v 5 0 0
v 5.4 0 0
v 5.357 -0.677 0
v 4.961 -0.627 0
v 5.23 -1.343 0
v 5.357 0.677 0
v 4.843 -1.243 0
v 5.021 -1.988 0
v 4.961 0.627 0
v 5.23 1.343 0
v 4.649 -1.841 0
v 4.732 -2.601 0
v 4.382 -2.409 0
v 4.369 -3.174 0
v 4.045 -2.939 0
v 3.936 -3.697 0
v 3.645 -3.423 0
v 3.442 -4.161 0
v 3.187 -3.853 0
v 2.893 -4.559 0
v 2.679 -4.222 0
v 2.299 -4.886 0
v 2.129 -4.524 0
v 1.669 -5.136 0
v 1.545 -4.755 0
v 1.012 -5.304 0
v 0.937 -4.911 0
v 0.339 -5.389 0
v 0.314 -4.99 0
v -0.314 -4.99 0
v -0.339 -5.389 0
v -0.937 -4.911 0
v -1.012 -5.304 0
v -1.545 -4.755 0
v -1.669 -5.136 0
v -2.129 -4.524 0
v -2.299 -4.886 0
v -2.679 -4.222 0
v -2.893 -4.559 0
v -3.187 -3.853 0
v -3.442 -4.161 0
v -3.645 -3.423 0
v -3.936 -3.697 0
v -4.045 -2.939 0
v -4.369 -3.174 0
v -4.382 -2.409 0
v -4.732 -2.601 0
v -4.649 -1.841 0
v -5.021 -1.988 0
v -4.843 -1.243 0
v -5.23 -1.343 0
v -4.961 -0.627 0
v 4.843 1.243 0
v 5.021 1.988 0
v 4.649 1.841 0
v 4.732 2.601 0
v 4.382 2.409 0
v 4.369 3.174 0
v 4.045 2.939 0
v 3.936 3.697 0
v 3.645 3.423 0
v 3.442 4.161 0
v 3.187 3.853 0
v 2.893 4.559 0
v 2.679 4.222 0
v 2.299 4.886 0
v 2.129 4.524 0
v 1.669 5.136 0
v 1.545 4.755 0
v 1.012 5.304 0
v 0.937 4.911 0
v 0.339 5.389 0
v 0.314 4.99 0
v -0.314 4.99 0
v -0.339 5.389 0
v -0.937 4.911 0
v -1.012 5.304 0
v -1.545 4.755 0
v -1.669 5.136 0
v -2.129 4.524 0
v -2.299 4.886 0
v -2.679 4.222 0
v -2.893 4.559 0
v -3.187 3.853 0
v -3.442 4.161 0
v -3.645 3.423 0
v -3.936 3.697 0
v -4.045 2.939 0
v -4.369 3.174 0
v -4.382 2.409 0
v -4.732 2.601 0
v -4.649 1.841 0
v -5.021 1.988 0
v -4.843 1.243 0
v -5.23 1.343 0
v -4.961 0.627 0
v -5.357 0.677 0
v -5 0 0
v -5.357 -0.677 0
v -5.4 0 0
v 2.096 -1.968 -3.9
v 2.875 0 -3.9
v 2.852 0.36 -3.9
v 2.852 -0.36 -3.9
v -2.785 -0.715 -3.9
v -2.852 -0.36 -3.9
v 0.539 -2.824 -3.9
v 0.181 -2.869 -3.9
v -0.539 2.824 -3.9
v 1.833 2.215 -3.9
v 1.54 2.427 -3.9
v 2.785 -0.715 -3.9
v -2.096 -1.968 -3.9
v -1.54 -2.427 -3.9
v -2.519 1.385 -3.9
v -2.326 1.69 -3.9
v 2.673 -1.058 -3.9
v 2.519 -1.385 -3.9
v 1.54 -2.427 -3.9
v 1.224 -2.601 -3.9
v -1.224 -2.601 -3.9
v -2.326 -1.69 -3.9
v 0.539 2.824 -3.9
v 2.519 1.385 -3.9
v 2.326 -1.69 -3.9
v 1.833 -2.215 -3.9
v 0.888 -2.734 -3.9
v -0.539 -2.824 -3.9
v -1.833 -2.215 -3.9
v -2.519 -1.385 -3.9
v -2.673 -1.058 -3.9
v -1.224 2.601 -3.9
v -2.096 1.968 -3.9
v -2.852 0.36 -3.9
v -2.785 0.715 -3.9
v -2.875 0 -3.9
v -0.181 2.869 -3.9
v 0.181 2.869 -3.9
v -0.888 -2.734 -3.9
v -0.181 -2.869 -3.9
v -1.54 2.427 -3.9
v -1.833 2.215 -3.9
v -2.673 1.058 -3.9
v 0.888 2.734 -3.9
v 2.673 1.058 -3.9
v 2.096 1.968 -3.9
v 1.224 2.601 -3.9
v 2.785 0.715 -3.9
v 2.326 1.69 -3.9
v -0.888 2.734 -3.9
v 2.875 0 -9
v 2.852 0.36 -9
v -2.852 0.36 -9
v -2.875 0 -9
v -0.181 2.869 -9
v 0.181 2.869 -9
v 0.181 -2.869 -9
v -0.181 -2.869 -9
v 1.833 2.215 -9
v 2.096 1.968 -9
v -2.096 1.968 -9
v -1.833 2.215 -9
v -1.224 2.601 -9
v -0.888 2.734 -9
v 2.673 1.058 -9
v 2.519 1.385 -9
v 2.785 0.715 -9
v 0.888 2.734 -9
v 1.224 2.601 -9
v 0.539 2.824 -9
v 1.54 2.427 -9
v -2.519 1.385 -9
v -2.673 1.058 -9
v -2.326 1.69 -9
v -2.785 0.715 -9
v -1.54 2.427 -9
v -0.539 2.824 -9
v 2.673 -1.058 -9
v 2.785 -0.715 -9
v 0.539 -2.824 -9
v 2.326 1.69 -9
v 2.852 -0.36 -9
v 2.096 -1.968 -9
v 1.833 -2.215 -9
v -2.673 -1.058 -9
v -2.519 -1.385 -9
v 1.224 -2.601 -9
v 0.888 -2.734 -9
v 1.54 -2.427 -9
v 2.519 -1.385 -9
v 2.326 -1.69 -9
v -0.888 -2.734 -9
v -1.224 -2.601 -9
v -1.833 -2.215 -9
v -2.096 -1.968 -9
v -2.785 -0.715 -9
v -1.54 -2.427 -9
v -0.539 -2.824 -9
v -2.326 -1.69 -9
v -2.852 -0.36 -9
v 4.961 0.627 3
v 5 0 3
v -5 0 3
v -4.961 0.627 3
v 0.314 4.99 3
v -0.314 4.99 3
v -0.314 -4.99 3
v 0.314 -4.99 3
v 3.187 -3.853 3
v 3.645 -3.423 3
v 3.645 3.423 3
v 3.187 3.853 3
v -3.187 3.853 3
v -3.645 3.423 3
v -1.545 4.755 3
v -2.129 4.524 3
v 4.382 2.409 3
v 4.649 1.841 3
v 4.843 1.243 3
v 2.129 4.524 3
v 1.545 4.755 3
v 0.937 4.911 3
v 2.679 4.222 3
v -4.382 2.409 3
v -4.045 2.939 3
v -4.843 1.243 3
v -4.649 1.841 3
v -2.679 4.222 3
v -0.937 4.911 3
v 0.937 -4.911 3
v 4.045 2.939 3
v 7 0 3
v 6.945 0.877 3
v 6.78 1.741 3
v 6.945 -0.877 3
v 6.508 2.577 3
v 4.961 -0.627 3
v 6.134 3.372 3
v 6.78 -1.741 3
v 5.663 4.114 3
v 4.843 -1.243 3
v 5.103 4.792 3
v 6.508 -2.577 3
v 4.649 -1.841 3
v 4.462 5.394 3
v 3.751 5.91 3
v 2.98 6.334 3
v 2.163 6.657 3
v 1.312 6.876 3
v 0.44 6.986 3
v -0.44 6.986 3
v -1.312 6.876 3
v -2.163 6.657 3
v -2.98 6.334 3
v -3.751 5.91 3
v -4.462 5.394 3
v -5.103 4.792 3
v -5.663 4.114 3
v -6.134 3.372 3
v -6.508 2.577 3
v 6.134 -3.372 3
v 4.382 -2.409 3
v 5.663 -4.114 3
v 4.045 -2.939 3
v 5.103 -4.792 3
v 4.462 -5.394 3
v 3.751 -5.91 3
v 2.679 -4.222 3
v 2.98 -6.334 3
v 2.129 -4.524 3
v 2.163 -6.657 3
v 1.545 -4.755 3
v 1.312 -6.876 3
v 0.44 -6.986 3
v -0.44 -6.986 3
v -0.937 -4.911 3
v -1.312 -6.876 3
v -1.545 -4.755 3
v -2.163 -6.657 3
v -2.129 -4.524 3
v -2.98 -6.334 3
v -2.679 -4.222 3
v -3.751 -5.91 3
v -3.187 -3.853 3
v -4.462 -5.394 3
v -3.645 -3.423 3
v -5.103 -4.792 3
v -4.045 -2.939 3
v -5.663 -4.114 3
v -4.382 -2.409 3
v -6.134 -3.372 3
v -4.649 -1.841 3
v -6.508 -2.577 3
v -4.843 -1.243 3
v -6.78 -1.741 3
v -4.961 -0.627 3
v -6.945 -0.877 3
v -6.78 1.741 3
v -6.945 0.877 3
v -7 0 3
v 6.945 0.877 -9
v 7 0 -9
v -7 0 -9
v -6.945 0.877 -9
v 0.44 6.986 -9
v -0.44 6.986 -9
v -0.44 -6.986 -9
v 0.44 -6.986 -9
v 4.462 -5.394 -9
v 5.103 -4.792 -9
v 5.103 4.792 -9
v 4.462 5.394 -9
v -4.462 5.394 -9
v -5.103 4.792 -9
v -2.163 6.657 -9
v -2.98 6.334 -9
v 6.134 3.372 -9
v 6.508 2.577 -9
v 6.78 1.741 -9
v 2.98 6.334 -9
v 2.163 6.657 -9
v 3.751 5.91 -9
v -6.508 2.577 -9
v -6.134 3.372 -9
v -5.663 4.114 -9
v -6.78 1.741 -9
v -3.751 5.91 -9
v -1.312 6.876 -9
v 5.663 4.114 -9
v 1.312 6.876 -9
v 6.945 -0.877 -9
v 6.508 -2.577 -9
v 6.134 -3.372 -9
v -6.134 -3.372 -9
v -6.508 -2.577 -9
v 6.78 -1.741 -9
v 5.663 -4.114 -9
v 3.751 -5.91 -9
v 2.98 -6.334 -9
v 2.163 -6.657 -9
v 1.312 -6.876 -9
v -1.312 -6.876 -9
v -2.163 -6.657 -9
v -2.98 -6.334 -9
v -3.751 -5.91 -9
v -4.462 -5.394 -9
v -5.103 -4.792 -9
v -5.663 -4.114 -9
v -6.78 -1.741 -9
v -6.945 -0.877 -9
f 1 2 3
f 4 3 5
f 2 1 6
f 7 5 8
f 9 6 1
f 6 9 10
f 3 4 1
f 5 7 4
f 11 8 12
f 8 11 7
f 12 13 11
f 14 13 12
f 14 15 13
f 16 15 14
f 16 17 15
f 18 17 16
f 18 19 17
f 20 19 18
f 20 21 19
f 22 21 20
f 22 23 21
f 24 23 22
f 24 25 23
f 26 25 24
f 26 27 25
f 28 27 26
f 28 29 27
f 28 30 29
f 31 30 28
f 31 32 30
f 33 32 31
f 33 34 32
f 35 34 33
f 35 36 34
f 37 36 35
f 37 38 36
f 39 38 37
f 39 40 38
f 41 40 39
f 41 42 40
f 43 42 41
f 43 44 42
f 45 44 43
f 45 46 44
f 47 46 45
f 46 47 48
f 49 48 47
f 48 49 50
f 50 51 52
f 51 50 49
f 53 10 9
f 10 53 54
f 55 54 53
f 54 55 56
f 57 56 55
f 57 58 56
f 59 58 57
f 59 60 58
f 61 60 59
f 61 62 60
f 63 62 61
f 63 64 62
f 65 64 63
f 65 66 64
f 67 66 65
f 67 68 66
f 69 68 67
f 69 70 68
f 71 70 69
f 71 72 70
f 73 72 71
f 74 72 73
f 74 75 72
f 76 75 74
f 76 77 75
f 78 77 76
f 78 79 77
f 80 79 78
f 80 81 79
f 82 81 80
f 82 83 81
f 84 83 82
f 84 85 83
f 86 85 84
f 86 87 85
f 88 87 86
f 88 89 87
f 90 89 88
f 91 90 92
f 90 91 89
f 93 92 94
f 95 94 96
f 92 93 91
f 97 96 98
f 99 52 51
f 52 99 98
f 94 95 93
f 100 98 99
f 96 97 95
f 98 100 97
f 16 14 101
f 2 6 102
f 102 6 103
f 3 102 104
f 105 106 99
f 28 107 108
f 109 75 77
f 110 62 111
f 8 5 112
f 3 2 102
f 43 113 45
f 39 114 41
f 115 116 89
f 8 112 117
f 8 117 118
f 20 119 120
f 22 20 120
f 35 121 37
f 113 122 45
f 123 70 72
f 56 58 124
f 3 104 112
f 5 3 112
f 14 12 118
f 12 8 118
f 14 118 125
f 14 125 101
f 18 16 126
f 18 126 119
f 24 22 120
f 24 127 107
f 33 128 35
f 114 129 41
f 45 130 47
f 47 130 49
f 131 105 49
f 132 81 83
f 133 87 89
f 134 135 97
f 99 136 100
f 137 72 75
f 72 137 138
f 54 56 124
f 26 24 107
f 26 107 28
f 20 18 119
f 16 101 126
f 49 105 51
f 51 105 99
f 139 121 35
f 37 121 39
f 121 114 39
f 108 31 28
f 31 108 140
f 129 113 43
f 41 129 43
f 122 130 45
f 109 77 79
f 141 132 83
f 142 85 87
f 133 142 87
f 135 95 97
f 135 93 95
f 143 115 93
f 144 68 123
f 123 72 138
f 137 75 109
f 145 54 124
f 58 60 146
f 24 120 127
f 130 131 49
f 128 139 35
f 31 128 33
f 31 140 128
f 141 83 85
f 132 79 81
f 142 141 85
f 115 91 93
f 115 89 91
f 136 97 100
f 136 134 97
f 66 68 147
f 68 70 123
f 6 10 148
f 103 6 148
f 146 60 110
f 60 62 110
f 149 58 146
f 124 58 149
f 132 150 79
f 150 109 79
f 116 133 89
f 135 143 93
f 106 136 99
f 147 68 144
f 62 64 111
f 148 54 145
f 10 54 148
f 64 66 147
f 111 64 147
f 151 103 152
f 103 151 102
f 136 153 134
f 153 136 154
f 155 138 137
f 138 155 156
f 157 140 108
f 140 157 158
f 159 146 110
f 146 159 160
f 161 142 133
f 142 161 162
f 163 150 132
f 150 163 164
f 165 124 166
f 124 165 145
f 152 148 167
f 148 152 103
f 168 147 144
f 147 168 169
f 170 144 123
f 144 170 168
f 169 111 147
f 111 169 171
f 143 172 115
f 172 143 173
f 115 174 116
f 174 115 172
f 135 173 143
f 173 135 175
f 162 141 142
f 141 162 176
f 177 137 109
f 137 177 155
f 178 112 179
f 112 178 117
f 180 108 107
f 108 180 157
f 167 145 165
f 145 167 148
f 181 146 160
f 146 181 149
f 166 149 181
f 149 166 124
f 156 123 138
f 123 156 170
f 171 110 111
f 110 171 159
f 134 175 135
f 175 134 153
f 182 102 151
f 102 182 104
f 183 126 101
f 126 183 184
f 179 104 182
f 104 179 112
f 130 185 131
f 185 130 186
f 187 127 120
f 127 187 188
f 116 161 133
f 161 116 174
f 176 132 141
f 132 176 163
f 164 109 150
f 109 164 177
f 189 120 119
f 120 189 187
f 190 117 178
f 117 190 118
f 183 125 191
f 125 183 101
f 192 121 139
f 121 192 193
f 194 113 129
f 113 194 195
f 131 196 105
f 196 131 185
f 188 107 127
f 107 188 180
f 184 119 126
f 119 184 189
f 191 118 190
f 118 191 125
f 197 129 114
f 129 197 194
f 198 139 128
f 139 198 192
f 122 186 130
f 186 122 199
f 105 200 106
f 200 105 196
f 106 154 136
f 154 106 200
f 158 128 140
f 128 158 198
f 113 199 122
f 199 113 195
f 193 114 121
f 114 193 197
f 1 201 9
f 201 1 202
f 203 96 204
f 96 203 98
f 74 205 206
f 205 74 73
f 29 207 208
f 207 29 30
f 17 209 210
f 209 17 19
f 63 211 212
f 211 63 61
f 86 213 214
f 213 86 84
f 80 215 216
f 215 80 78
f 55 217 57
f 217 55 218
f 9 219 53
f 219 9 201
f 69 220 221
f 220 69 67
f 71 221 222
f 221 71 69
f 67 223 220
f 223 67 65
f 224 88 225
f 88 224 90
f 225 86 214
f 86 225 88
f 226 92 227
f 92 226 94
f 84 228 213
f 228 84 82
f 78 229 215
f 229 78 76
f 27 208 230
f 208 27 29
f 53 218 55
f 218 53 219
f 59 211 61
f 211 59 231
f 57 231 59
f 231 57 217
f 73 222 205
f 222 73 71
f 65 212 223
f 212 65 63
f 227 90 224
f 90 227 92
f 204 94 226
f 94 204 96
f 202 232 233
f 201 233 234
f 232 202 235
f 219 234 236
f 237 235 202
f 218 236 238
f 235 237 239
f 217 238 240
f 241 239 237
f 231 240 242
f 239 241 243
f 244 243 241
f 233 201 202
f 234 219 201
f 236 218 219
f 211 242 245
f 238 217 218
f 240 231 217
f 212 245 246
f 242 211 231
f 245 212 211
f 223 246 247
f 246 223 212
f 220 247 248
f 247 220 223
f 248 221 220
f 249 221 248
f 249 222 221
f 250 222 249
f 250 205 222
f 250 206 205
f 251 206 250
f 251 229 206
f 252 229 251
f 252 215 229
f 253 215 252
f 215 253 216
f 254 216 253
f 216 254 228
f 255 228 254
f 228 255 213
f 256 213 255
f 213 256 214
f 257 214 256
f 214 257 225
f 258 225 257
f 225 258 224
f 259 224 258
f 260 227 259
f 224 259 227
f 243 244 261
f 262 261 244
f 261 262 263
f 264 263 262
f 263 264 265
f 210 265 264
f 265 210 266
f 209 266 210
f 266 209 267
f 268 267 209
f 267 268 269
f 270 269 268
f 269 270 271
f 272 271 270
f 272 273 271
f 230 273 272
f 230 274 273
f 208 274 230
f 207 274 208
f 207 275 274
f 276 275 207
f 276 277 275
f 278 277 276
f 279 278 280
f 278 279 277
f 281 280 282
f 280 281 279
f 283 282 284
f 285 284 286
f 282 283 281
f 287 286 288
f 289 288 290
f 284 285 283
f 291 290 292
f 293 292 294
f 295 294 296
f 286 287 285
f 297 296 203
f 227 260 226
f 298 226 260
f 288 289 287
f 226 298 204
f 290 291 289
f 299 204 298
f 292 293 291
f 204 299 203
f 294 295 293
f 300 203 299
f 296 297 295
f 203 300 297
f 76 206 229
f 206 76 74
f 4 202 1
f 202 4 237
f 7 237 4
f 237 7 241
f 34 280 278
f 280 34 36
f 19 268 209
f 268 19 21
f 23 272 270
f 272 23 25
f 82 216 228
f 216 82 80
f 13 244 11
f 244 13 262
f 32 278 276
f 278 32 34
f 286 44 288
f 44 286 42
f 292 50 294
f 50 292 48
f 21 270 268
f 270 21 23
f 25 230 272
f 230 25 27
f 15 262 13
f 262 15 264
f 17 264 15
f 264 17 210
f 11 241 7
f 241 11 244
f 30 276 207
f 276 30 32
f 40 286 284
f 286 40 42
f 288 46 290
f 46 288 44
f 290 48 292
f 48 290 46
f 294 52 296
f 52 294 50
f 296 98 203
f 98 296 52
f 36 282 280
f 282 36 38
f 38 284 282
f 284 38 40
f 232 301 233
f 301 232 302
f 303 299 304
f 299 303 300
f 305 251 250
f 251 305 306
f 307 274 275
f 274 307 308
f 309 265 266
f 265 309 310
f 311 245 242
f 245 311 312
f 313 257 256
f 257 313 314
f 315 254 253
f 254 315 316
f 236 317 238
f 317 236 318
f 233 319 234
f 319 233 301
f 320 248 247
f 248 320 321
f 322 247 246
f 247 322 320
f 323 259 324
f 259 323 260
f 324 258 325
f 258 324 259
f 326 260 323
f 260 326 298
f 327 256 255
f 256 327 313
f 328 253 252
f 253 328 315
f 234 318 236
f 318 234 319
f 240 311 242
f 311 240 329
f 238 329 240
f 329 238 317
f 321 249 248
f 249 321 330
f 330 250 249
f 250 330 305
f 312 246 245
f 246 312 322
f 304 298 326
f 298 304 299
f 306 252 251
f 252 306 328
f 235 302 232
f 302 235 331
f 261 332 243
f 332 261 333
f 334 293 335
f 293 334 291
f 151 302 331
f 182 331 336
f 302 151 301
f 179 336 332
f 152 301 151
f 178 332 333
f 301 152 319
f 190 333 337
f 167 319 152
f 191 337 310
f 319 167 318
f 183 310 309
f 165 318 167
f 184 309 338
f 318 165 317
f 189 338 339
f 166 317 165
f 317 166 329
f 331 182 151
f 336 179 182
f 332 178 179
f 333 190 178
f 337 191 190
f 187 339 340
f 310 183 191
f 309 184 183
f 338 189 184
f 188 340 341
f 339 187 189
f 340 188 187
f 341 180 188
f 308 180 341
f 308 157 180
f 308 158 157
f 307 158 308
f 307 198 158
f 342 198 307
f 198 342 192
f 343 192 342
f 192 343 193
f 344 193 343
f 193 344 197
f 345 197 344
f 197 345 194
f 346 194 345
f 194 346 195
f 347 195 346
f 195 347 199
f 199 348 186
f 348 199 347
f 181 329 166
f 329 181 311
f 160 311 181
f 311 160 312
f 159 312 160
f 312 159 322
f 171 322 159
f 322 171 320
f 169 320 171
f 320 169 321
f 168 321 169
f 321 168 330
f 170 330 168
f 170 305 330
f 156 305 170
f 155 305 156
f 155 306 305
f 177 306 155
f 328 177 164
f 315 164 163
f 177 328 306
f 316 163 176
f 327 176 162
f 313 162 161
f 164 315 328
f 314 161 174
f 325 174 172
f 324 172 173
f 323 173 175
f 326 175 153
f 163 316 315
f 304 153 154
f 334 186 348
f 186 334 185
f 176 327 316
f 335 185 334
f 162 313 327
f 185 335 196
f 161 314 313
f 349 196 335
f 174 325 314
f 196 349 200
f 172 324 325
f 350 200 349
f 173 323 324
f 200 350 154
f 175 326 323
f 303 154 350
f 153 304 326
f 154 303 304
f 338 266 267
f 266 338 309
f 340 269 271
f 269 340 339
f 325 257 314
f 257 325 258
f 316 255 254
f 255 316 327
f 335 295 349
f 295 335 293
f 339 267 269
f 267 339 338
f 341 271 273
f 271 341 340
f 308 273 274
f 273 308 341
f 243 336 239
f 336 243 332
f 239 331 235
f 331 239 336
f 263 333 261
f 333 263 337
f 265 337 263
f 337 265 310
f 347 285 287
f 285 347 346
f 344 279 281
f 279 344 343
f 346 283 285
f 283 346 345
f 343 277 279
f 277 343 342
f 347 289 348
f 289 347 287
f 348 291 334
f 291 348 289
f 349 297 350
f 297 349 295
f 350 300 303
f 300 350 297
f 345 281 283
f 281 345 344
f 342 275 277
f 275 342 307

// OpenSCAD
$fn = 50;


difference() {
	union() {
		translate(v = [0, 0, -9.0000000000]) {
			cylinder(h = 12, r = 7.0000000000);
		}
	}
	union() {
		translate(v = [0, 0, 0]) {
			rotate(a = [0, 0, 0]) {
				difference() {
					union() {
						translate(v = [0, 0, -12.0000000000]) {
							cylinder(h = 12, r = 2.6000000000);
						}
						translate(v = [0, 0, -3.9000000000]) {
							cylinder(h = 3.9000000000, r1 = 2.8750000000, r2 = 5.4000000000);
						}
						translate(v = [0, 0, -12.0000000000]) {
							cylinder(h = 12, r = 2.8750000000);
						}
						translate(v = [0, 0, -12.0000000000]) {
							cylinder(h = 12, r = 2.6000000000);
						}
					}
					union();
				}
			}
		}
		#cylinder(h = 3, r = 5.0000000000);
	}
}
